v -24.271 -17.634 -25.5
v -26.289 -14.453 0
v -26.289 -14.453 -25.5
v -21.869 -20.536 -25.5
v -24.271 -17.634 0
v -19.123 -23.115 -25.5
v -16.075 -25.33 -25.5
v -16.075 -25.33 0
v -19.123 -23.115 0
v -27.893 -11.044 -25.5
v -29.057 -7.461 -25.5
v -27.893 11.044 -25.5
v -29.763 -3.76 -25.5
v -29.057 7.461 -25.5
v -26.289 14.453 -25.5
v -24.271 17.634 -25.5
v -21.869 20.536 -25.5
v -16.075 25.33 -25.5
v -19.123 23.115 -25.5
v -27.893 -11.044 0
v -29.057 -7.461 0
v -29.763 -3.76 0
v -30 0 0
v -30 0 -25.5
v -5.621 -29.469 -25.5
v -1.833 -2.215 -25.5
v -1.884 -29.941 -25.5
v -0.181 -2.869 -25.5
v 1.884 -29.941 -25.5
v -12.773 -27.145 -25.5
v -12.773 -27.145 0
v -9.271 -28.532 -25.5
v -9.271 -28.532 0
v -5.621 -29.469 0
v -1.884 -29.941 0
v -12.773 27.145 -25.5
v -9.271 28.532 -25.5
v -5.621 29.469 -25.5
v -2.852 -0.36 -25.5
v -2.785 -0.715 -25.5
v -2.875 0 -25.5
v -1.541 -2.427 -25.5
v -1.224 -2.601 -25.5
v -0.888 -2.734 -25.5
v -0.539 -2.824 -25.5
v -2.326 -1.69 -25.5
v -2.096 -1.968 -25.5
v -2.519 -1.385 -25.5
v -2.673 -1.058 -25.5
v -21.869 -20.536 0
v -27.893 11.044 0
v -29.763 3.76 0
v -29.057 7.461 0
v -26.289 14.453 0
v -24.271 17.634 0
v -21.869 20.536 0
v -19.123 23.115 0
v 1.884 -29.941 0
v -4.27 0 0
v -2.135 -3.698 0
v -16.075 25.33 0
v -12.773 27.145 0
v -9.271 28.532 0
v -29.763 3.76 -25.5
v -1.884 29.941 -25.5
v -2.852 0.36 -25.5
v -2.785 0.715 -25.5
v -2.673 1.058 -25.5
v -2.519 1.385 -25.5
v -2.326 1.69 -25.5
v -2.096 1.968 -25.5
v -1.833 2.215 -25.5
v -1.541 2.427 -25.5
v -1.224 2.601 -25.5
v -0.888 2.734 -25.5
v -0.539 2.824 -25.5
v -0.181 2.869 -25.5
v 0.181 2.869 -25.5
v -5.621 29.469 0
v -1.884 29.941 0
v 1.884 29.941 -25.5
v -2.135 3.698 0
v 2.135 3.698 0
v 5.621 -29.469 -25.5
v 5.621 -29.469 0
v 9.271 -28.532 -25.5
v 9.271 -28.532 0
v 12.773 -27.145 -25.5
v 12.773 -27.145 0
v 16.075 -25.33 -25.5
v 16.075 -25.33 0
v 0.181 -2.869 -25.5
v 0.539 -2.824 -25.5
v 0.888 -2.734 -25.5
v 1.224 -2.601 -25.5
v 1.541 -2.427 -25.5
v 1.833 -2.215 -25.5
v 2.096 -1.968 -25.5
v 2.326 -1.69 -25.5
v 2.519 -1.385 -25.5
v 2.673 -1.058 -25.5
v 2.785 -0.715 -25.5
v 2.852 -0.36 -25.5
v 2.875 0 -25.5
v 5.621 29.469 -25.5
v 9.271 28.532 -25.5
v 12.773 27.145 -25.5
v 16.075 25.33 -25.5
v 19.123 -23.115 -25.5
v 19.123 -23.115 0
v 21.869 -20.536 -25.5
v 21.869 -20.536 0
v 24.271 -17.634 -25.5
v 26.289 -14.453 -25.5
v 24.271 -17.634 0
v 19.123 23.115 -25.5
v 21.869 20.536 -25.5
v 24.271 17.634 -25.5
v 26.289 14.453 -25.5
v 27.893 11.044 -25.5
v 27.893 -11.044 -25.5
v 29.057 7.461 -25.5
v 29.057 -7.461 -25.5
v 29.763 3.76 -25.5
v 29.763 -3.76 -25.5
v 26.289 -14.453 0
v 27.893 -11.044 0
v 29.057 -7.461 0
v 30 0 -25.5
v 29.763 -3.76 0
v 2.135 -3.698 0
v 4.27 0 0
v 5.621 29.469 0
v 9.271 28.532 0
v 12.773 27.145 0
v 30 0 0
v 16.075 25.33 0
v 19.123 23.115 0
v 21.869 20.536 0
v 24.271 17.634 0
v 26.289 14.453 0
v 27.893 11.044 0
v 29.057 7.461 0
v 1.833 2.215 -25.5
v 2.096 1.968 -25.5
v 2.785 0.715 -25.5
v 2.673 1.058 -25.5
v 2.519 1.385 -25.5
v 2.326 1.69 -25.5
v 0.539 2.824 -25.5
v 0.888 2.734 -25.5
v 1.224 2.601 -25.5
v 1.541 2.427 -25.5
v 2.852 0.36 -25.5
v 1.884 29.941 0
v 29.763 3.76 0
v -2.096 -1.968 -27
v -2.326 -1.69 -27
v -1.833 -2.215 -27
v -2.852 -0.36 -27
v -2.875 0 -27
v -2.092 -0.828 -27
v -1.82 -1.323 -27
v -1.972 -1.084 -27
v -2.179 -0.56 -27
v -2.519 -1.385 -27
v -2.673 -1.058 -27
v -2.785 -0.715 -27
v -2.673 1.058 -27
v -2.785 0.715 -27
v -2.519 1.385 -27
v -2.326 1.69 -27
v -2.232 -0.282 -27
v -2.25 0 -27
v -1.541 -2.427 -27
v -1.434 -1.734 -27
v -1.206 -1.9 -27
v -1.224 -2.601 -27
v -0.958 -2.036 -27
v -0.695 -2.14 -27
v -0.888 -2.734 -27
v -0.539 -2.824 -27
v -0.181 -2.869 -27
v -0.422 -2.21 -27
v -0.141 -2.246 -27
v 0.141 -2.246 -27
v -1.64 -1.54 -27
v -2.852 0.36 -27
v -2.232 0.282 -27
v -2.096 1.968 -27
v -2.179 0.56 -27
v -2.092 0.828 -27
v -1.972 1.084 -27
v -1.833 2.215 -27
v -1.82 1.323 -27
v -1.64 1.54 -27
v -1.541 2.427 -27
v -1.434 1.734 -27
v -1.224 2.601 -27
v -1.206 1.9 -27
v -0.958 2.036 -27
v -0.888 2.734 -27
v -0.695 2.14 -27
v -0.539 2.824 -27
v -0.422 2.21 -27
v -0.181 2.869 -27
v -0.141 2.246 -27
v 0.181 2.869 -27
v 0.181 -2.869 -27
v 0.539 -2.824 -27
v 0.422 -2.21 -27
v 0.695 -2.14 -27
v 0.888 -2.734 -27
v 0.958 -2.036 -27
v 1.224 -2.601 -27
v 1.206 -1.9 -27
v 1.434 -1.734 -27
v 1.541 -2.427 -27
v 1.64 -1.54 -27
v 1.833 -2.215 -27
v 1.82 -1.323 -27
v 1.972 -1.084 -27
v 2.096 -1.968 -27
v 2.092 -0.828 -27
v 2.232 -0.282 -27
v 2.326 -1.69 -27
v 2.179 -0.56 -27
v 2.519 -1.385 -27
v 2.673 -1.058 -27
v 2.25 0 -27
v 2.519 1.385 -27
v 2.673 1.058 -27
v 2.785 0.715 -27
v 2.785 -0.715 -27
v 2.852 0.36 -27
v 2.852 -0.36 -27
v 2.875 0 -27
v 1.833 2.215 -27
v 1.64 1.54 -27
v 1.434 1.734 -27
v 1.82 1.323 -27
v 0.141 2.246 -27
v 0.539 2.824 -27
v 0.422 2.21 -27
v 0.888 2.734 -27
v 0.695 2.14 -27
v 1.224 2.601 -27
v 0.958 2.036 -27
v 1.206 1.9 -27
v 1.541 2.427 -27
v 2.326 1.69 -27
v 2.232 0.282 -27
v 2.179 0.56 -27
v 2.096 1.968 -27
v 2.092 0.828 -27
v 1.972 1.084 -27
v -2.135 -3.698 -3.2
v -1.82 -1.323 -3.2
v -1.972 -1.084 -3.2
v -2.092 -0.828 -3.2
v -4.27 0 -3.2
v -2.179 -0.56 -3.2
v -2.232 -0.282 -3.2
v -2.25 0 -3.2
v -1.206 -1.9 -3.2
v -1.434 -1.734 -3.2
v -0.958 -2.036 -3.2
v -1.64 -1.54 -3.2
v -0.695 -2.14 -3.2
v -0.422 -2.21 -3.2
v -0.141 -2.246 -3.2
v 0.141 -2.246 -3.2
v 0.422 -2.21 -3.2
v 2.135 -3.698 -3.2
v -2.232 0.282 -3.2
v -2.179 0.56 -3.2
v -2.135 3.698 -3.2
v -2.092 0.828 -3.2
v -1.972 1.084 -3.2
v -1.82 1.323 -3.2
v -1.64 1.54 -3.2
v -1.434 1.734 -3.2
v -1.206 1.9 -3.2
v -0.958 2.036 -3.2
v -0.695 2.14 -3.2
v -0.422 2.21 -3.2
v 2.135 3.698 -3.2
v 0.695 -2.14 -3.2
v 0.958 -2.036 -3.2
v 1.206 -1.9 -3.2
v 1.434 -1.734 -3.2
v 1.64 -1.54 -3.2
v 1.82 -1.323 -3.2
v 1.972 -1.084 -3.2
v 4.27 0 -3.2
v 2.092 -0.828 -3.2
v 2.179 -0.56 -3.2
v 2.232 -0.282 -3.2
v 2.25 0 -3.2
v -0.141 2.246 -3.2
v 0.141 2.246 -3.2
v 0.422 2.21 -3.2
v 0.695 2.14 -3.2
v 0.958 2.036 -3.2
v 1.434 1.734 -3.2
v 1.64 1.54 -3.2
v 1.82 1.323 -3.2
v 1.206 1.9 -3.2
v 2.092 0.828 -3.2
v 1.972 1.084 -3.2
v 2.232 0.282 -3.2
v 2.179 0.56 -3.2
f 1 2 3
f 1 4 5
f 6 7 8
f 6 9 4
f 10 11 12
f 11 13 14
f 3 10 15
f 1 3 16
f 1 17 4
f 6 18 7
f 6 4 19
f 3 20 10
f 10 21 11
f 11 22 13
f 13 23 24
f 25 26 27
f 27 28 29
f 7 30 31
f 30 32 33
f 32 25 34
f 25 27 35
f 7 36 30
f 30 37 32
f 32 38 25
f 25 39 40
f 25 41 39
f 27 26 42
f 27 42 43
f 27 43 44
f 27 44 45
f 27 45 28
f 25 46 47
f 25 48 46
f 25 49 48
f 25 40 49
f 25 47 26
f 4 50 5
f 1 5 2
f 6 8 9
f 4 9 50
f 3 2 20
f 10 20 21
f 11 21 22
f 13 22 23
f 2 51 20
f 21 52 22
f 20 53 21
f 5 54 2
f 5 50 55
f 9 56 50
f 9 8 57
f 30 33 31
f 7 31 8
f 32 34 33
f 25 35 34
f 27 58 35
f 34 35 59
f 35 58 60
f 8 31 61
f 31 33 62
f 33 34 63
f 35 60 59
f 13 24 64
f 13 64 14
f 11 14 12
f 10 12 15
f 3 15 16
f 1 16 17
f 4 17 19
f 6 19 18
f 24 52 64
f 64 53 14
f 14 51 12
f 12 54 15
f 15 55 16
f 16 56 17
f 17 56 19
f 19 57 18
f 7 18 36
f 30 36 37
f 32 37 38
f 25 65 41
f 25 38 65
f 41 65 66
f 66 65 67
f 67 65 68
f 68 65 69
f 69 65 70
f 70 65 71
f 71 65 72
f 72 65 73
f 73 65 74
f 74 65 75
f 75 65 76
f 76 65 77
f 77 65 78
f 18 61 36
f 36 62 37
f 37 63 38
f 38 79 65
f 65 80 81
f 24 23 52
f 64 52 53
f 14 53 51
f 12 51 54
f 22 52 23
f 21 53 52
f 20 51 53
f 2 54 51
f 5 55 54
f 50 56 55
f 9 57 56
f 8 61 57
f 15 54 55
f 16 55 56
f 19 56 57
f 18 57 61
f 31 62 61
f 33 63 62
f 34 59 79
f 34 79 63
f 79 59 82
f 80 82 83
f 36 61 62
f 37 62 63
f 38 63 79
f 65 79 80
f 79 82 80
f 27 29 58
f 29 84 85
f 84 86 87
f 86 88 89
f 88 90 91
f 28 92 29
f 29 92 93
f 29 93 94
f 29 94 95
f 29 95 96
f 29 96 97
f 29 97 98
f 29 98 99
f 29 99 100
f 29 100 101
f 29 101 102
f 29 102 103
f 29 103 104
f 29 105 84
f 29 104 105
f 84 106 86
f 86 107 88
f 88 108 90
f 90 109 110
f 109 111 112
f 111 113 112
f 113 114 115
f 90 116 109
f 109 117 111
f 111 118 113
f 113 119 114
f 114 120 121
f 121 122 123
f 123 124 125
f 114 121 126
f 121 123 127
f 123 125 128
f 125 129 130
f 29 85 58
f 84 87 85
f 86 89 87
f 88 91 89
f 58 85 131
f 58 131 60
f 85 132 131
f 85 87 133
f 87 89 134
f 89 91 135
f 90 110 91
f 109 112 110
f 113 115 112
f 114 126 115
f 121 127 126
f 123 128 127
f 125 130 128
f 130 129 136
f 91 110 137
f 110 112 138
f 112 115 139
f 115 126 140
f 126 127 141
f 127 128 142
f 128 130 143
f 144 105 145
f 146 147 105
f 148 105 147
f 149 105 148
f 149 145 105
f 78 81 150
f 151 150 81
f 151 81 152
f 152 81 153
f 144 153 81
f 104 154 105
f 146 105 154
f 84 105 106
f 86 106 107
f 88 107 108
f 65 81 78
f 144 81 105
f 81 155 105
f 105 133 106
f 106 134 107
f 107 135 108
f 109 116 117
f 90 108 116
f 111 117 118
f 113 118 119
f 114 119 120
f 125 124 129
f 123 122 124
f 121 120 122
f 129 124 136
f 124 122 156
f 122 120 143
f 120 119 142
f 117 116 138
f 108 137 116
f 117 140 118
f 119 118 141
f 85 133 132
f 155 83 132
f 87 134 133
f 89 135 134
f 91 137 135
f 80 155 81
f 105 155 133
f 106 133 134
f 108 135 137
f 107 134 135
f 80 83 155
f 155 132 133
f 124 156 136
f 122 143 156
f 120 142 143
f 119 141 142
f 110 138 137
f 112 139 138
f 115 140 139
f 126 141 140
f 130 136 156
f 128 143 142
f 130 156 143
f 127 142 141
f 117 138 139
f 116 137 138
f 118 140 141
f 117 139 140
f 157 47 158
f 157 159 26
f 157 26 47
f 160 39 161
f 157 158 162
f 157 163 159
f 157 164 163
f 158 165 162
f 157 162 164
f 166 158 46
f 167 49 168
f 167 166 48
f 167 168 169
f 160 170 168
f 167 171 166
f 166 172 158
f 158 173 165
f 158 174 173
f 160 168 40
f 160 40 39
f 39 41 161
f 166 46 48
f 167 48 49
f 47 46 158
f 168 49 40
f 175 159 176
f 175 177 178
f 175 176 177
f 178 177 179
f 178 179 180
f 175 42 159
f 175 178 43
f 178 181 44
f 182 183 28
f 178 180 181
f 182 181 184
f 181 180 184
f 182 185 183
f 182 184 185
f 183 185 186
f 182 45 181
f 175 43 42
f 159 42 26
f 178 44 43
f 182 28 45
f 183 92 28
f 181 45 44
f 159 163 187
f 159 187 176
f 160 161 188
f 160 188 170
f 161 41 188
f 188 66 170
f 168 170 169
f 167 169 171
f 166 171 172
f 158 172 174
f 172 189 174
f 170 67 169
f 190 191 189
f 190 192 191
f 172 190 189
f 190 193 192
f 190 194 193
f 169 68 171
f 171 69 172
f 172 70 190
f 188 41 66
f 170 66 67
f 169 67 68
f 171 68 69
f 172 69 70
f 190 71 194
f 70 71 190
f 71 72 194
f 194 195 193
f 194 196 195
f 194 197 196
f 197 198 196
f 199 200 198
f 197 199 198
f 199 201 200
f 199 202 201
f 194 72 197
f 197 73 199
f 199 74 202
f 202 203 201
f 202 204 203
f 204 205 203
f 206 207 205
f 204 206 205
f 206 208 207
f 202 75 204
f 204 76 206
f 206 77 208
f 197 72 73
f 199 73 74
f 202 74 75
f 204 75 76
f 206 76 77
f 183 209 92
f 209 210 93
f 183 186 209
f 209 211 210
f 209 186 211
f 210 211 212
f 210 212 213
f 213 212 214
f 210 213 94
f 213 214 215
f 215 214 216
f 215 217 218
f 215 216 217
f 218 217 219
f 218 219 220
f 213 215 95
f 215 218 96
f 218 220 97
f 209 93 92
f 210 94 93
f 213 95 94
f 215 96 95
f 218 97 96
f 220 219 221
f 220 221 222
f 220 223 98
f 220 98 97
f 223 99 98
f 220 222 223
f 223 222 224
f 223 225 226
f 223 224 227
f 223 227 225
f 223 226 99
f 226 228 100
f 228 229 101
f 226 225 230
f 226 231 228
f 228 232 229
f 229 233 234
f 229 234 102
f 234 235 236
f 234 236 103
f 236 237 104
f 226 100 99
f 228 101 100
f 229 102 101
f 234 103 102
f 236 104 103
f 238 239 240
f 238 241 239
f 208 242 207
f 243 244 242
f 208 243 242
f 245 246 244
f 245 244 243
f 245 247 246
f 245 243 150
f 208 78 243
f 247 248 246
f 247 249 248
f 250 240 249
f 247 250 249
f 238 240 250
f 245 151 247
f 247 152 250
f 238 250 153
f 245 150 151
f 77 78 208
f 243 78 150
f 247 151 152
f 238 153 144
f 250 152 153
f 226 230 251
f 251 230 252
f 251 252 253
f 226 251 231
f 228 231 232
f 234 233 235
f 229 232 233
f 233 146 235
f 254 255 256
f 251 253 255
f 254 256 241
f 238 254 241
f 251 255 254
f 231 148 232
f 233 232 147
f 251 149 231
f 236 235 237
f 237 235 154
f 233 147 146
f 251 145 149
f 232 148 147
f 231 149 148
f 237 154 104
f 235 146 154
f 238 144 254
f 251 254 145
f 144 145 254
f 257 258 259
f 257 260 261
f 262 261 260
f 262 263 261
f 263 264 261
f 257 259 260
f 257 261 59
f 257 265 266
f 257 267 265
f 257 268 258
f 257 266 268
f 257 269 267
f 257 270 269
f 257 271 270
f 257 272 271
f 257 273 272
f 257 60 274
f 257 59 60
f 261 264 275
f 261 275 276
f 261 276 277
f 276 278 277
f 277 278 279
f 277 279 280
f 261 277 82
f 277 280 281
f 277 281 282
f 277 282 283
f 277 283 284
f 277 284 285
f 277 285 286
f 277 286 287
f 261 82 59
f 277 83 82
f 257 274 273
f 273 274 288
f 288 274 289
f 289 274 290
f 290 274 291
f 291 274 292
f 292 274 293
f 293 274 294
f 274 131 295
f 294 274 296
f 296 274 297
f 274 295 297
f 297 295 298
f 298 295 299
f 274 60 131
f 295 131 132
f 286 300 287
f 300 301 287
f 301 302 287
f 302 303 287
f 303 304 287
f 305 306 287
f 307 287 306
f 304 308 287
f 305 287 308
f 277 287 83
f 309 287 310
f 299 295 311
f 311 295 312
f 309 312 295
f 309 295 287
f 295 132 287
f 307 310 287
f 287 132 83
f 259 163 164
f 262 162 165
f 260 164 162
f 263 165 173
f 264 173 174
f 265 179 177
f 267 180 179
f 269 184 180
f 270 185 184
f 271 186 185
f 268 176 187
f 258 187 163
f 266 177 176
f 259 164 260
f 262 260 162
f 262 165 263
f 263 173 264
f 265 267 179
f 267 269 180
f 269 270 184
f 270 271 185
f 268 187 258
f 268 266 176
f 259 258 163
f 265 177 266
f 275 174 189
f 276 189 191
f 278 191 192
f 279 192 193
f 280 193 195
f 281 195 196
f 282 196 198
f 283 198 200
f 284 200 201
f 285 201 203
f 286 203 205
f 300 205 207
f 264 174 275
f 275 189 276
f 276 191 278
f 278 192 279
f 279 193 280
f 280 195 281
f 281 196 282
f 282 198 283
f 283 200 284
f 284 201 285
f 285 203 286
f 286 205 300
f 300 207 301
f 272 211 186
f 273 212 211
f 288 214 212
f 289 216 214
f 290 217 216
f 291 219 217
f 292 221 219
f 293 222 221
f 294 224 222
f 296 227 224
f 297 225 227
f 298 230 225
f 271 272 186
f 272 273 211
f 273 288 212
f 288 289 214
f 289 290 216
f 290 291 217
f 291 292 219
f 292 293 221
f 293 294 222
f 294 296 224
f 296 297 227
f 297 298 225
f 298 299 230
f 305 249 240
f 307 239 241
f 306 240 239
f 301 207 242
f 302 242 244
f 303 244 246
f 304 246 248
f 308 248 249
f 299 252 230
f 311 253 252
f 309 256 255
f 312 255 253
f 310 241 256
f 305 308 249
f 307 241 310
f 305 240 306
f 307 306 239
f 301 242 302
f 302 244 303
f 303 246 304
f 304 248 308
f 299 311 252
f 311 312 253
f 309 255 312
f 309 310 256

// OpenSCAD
$fn = 50;

difference() {
	union() {
		translate(v = [0, 0, -25.5]) {
			cylinder(h = 25.5, r = 30.0);
		}
		#translate(v = [0, 0, -27.0]) {
			cylinder(h = 27, r = 2.875);
		}
	}
	union() {
		translate(v = [0, 0, 0]) {
			rotate(a = [0, 0, 0]) {
				difference() {
					union() {
						translate(v = [0, 0, -3.2]) {
							linear_extrude(height = 3.2) {
								polygon(points = [[4.2698, 0.0], [2.1349000000000005, 3.697755269078796], [-2.134899999999999, 3.6977552690787965], [-4.2698, 5.228996902999369e-16], [-2.134900000000002, -3.6977552690787956], [2.1348999999999974, -3.697755269078798]]);
							}
						}
					}
					union();
				}
			}
		}
		#translate(v = [0, 0, -100.0]) {
			cylinder(h = 200, r = 2.25);
		}
	}
}
